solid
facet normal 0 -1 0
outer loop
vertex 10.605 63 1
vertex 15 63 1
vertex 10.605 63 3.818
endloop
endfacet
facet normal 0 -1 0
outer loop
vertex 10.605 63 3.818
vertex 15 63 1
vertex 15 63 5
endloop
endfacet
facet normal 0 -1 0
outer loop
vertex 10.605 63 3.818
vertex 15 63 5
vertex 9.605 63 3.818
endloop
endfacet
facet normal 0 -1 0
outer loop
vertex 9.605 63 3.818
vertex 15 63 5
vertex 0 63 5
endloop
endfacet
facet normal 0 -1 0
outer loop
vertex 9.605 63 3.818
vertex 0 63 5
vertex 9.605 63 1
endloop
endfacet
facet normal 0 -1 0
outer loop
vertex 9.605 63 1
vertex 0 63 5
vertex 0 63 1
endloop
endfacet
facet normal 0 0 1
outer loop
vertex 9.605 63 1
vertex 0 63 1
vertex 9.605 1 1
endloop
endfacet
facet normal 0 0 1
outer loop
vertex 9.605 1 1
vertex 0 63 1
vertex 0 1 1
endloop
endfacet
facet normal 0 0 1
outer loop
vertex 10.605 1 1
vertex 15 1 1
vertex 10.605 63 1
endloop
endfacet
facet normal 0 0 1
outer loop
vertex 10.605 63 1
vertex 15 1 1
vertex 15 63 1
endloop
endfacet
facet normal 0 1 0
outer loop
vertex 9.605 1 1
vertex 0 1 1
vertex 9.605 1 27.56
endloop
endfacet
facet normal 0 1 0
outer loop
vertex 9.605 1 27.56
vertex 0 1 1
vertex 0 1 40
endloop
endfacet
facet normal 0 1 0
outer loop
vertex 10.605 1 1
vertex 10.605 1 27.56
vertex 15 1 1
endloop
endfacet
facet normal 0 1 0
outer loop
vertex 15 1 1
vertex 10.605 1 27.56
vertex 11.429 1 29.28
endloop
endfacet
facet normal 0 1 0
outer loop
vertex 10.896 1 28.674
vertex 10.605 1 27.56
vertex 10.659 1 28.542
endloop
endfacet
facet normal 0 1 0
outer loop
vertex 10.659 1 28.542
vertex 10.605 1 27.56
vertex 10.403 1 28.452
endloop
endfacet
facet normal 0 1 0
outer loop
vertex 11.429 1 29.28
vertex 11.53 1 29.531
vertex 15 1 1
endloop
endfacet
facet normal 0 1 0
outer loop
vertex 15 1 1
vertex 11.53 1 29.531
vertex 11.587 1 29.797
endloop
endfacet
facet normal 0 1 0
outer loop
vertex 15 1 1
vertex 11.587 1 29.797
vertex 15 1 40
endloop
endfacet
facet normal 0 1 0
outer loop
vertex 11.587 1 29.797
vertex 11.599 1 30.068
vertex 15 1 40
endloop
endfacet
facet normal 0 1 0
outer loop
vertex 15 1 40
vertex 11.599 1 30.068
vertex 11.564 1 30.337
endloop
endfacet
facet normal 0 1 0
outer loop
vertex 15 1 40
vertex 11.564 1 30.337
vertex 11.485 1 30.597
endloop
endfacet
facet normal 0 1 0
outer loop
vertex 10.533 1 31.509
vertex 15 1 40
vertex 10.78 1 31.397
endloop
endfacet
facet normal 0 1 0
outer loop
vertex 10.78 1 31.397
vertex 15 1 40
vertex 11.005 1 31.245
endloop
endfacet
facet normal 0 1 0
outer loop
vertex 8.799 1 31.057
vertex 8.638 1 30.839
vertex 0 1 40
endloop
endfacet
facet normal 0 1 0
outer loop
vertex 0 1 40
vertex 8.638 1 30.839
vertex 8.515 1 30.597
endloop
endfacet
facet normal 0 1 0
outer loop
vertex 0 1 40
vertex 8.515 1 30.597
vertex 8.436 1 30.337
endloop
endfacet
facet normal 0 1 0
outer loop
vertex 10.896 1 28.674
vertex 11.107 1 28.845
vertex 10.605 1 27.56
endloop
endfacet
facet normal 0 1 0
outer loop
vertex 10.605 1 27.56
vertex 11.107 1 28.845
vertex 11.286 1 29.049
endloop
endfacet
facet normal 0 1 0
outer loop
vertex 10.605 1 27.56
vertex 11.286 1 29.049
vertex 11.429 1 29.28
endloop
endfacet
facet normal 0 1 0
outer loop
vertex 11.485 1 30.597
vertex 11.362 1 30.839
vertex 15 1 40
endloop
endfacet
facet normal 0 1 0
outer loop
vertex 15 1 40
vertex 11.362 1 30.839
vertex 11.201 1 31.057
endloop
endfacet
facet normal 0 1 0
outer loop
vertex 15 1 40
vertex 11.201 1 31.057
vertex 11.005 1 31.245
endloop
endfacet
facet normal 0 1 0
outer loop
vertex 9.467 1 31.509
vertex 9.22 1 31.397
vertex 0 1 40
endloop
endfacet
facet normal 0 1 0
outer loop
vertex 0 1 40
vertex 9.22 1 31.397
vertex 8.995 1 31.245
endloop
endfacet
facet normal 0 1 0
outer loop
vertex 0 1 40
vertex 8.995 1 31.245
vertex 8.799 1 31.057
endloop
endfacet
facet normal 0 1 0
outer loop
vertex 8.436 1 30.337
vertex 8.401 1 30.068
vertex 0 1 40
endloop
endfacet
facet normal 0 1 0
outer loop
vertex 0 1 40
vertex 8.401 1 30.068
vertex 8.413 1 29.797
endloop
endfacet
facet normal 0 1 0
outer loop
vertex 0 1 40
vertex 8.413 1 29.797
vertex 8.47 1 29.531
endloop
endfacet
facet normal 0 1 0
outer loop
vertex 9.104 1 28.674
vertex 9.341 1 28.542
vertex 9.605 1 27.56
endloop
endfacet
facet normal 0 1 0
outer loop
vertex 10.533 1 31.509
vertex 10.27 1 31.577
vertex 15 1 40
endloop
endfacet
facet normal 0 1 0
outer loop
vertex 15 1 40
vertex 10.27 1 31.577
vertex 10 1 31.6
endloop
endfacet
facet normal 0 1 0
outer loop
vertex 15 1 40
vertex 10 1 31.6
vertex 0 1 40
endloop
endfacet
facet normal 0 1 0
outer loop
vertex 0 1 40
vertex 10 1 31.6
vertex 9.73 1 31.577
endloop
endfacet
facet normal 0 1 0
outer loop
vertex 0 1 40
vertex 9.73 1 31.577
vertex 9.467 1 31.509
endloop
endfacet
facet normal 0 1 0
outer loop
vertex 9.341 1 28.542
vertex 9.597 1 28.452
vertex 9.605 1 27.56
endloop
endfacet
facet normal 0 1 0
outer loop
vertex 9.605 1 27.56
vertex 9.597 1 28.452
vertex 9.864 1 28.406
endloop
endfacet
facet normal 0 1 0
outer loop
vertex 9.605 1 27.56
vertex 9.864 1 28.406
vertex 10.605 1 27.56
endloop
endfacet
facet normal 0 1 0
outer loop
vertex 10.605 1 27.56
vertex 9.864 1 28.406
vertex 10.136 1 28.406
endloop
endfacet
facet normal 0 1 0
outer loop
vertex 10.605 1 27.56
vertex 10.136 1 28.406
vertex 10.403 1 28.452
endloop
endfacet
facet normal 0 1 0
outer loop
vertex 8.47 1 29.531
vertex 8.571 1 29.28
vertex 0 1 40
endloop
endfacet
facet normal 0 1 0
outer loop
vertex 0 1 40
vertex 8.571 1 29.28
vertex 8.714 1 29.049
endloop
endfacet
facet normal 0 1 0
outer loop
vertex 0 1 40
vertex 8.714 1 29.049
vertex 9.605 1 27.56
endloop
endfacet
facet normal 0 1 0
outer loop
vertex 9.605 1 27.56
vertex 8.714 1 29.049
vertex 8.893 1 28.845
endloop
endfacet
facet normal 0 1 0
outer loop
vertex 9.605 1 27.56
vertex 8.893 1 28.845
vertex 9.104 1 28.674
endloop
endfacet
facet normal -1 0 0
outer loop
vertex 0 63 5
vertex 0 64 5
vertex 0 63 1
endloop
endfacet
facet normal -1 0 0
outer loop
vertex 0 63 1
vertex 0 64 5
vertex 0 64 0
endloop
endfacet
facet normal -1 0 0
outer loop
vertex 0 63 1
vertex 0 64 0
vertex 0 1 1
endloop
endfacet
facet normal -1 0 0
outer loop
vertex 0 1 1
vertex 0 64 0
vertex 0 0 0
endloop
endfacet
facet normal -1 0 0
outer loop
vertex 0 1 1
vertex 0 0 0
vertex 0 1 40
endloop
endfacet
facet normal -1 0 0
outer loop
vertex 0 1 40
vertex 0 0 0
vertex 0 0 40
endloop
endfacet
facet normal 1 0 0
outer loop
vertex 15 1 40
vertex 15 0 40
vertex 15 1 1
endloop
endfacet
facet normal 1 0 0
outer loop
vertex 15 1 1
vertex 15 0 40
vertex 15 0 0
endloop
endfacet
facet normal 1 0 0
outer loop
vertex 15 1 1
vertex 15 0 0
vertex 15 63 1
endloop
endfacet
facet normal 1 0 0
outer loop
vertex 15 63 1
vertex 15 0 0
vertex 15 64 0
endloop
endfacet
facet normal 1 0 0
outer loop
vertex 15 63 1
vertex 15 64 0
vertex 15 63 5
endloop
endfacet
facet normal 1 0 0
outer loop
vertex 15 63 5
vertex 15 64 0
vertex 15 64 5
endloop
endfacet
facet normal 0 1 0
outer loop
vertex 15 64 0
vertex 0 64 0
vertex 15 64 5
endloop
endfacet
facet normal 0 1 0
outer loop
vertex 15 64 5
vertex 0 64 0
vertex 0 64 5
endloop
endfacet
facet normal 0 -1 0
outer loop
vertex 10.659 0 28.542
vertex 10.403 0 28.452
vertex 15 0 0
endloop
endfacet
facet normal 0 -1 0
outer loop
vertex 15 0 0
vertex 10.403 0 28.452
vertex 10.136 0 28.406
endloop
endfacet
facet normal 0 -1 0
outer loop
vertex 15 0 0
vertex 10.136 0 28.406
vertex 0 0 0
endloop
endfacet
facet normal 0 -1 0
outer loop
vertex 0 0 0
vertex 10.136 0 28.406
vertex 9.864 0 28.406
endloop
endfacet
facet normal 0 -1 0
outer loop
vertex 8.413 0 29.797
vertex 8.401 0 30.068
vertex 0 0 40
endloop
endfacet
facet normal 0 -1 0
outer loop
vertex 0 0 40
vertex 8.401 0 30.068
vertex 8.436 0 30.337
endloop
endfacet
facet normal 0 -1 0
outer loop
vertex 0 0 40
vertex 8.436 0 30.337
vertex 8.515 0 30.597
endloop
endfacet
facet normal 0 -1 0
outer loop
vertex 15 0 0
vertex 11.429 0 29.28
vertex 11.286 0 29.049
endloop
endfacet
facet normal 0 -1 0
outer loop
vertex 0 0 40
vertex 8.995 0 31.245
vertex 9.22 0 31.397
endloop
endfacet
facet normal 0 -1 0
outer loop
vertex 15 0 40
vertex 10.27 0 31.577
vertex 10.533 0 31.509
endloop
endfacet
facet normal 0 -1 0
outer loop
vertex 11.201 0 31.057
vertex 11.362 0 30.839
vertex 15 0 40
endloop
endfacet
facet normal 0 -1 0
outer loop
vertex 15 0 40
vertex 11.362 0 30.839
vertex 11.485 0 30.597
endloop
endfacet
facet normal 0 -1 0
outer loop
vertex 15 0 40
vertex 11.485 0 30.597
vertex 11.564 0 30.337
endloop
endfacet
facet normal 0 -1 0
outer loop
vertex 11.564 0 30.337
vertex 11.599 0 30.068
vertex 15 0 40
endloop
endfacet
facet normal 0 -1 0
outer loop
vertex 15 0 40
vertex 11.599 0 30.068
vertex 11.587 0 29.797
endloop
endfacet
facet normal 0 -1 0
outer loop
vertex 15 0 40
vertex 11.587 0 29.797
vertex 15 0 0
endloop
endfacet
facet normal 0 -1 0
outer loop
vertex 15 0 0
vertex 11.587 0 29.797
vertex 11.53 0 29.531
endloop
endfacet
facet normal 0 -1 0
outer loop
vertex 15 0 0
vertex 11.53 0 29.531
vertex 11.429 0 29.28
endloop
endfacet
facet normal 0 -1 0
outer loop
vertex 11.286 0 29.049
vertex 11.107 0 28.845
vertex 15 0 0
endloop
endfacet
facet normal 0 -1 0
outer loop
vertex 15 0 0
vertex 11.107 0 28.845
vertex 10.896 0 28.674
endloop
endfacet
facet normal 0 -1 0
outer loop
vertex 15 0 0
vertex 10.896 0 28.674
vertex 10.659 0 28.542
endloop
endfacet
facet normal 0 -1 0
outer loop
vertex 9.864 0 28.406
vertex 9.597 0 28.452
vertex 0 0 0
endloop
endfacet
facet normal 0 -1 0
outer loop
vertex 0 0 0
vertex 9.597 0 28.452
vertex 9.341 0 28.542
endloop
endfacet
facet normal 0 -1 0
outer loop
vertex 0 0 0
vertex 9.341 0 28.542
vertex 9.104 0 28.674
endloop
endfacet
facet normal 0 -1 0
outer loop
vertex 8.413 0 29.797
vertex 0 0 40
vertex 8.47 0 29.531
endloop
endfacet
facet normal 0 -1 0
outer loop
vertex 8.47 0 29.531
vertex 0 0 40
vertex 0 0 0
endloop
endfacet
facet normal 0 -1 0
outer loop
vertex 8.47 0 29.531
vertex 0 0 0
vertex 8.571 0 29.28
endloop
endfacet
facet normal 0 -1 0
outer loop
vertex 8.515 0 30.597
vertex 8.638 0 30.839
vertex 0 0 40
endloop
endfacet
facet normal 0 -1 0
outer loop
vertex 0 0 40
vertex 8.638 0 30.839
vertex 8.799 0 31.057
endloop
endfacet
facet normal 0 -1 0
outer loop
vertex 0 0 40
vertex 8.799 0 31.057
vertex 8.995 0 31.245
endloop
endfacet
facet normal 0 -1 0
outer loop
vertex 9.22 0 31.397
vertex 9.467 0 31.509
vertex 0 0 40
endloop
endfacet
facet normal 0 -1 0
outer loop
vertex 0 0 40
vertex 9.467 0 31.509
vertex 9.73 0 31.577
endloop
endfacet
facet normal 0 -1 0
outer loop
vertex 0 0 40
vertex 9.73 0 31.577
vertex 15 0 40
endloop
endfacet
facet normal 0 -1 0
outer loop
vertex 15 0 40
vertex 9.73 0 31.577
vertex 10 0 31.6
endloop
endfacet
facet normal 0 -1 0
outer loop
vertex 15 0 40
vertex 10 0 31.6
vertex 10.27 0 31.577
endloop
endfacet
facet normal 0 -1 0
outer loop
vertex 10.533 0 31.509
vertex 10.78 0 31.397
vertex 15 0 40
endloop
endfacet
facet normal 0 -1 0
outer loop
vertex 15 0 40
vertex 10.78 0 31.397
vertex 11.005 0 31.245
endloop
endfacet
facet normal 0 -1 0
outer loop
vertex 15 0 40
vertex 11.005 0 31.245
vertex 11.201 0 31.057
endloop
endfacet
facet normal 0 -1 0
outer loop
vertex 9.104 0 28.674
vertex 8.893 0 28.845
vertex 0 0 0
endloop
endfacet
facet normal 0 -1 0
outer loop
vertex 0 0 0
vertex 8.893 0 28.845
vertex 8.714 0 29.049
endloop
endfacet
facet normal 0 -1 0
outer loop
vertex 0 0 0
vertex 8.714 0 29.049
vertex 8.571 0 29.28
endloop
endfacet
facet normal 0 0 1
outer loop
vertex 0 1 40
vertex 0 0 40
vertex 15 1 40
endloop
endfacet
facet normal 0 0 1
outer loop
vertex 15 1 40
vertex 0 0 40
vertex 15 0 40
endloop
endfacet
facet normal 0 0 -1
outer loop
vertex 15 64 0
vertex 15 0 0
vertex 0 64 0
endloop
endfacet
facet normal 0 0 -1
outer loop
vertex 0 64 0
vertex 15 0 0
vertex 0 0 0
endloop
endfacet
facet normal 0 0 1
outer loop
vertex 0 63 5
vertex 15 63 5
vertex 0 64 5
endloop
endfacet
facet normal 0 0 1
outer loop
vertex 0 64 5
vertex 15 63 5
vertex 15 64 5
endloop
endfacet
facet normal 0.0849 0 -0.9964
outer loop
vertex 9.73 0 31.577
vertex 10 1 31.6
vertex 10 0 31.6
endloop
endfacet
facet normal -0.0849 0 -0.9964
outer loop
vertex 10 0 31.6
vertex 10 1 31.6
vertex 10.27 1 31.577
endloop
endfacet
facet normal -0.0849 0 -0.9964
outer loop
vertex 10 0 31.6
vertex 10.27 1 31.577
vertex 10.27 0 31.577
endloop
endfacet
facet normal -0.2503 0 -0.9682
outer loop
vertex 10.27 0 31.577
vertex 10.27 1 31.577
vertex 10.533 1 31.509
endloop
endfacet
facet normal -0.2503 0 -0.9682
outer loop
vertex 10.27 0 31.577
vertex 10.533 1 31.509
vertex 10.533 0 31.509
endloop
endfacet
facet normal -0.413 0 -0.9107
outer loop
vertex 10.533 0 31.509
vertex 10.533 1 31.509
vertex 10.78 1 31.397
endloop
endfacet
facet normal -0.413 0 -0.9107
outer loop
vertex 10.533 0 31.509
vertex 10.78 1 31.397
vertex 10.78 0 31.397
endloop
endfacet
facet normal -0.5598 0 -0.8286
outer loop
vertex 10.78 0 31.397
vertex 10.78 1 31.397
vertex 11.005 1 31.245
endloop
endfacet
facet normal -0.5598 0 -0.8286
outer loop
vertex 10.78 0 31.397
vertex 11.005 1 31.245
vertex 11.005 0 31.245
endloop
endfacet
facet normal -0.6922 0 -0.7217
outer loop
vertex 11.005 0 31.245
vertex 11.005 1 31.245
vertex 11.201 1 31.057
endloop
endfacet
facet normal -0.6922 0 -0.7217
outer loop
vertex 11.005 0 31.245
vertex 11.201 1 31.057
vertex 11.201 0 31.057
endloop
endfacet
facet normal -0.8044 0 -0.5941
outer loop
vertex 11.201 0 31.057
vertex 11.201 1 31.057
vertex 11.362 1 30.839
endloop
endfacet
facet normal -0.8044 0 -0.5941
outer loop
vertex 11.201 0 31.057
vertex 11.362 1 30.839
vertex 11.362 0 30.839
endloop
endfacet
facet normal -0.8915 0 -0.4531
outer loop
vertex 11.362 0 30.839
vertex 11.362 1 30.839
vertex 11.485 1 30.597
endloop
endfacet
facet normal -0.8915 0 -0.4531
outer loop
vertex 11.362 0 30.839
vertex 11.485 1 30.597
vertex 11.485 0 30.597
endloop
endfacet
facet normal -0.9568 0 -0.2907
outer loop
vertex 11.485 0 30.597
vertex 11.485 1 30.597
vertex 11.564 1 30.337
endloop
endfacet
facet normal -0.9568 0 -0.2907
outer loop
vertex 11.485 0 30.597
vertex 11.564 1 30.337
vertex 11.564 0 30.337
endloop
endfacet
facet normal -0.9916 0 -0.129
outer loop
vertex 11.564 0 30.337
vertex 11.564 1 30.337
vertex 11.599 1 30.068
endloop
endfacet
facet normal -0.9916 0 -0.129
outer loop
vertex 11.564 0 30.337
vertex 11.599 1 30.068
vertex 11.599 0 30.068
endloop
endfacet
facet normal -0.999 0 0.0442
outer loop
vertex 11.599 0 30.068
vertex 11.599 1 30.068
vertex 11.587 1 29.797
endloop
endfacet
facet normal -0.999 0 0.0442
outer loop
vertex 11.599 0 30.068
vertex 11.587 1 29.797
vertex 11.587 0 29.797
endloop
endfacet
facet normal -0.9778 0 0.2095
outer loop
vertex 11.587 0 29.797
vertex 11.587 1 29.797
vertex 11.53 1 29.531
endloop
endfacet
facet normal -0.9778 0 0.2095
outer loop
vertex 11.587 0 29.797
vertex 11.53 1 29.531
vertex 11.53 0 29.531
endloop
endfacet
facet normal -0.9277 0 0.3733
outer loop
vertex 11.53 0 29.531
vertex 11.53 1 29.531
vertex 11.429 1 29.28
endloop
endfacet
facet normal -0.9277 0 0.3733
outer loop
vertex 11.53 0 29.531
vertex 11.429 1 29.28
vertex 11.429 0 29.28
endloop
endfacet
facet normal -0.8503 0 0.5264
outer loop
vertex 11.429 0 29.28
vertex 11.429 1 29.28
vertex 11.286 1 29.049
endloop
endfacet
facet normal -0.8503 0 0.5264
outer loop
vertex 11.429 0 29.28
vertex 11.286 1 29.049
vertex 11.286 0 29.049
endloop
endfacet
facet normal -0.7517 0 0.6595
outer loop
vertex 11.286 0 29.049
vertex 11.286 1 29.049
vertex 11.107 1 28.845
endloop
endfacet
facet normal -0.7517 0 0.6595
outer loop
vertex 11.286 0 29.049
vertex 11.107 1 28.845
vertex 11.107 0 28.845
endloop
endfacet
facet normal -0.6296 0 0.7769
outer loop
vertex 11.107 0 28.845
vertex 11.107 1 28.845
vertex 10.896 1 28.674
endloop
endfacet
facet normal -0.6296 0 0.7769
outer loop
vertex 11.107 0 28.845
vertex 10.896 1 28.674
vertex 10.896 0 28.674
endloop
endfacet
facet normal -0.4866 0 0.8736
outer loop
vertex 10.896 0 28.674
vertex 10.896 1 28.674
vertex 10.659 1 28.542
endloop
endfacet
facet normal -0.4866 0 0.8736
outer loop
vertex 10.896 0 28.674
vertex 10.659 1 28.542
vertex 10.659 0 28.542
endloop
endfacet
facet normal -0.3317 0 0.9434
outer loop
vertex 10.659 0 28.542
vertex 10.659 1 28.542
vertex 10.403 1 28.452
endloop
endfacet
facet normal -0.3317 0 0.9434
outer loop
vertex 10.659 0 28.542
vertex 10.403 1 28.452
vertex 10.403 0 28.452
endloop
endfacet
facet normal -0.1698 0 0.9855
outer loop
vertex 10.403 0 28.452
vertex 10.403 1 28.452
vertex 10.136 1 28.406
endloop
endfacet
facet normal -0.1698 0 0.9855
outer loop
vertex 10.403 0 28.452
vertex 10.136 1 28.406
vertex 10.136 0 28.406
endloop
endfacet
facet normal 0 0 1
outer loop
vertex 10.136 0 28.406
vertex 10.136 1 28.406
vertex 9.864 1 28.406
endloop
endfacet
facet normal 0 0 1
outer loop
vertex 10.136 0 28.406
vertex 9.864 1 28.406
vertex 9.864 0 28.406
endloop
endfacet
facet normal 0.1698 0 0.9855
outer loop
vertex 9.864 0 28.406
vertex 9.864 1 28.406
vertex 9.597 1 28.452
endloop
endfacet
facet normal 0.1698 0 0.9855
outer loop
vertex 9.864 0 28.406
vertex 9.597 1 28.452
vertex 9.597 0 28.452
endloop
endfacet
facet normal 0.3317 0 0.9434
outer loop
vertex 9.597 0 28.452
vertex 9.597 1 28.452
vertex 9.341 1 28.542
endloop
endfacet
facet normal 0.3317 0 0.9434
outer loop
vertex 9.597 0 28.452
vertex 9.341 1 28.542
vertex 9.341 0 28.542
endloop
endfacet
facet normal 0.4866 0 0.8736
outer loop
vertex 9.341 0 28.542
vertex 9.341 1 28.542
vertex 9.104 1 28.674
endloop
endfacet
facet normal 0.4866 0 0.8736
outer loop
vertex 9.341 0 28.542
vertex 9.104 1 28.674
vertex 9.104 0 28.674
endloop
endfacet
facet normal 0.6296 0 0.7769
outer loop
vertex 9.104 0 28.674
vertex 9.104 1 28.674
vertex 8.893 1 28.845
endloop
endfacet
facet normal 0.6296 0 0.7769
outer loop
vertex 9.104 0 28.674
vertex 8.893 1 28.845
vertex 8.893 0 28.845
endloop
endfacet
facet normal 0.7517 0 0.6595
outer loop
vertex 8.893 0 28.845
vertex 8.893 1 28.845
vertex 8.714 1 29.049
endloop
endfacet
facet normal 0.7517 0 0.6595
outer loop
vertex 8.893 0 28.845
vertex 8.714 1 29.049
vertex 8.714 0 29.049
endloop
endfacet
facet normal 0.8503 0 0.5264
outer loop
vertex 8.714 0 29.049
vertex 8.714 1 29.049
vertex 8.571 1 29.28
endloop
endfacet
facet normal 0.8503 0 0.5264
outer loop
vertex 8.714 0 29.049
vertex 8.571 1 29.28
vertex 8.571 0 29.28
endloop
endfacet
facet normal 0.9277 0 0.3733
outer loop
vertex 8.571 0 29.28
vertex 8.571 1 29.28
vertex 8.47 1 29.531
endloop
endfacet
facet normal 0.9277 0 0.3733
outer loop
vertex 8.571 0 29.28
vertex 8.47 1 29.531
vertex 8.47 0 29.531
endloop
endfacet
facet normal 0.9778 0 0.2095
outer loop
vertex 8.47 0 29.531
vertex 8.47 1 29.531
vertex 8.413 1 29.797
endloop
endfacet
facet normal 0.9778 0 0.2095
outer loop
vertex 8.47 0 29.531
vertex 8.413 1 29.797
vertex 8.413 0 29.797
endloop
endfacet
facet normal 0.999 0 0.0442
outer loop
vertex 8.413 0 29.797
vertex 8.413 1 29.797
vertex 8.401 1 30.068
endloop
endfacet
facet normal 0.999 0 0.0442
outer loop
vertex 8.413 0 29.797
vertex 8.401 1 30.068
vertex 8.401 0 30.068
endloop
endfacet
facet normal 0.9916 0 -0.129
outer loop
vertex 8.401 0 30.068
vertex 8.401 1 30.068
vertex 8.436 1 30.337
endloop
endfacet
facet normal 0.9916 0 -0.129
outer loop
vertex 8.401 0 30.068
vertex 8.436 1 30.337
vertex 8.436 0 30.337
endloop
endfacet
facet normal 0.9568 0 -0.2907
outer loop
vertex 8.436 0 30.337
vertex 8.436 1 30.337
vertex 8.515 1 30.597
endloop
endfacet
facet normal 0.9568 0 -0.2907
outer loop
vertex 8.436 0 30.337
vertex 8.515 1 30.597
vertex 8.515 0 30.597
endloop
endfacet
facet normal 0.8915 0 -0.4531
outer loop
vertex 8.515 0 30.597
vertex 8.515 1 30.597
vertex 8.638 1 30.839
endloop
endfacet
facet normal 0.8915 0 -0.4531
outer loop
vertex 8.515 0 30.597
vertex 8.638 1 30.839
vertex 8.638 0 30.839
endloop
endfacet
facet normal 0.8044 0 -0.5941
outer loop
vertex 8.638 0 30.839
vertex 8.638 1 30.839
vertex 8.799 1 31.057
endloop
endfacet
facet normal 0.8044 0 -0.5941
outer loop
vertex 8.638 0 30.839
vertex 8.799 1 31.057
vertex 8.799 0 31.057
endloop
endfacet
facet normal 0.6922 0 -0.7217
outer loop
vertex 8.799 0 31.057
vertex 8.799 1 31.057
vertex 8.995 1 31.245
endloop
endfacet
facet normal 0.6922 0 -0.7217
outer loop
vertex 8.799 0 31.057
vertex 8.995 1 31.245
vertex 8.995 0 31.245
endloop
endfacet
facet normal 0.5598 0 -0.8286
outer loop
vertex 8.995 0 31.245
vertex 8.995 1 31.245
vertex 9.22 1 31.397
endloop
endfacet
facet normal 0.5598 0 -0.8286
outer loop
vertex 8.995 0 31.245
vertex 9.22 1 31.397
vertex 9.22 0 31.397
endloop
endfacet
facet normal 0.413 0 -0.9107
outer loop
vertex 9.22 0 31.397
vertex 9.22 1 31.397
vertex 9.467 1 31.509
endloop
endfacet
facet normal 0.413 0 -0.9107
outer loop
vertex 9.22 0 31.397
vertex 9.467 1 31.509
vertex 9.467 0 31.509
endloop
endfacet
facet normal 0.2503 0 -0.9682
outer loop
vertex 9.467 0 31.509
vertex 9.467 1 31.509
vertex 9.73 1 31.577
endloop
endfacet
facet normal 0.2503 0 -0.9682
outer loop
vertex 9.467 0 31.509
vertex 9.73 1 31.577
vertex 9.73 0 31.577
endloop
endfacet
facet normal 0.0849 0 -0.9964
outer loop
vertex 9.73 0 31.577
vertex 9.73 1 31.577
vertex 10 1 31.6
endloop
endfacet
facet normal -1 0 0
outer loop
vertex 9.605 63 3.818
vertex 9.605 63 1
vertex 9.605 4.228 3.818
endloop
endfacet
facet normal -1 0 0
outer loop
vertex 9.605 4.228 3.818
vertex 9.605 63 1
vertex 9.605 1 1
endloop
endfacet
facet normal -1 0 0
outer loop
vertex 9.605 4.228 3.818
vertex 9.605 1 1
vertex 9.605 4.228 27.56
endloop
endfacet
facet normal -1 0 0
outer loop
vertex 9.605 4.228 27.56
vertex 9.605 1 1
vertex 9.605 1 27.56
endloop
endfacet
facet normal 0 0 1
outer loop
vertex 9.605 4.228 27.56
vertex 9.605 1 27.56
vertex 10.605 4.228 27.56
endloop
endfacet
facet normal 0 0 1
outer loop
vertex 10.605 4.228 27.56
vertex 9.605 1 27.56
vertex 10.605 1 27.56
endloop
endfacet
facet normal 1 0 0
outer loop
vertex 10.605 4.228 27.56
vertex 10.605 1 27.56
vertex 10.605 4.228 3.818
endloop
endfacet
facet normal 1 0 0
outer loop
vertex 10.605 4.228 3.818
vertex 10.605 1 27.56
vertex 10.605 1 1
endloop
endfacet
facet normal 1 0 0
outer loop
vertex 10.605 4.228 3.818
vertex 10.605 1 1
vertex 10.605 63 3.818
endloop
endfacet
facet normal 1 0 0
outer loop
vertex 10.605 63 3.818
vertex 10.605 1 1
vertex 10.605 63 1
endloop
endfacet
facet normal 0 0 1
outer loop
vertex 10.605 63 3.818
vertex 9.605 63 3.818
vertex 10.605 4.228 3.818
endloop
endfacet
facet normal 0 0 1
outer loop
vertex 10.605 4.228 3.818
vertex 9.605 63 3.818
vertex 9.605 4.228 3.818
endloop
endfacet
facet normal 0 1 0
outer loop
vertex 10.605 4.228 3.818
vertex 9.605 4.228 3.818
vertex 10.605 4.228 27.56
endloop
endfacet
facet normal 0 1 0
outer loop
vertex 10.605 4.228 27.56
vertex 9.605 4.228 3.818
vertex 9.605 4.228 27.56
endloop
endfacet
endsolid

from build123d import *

# Parameters (mm, degrees)
SKETCH_1_W          = 15
SKETCH_1_H          = 64
EXTRUDE_1_DEPTH     = 40
SKETCH_2_W          = 30.056005851
SKETCH_2_H          = 62
CUT_EXTRUDE_1_DEPTH = 39
SKETCH_3_W          = 28.51308974
SKETCH_3_H          = 3.641282023
CUT_EXTRUDE_2_DEPTH = 35
SKETCH_4_R          = 1.6
CUT_EXTRUDE_3_DEPTH = 35
SKETCH_5_W          = 1
SKETCH_5_H          = 27.039604853
EXTRUDE_2_DEPTH     = 62
SKETCH_7_W          = 23.742414222
SKETCH_7_H          = 58.772442454
CUT_EXTRUDE_5_DEPTH = 62


with BuildPart() as part:
    # 草图1 → 凸台-拉伸1 (new body)
    with BuildSketch(Plane.XY):
        with Locations((7.5, 32)):
            Rectangle(SKETCH_1_W, SKETCH_1_H)
    extrude(amount=EXTRUDE_1_DEPTH)

    # 草图2 → 切除-拉伸1 (cut)
    with BuildSketch(Plane.XY.offset(40)):
        with Locations((11.079565378, 32)):
            Rectangle(SKETCH_2_W, SKETCH_2_H)
    extrude(amount=-CUT_EXTRUDE_1_DEPTH, mode=Mode.SUBTRACT)

    # 草图3 → 切除-拉伸2 (cut)
    with BuildSketch(Plane.XY.offset(40)):
        with Locations((10.369823967, 63.629780285)):
            Rectangle(SKETCH_3_W, SKETCH_3_H)
    extrude(amount=-CUT_EXTRUDE_2_DEPTH, mode=Mode.SUBTRACT)

    # 草图4 → 切除-拉伸3 (cut)
    with BuildSketch(Plane(origin=(0, 1, 0), x_dir=(1, 0, 0), z_dir=(0, 1, 0))):
        with Locations(Location((10, -30, 0), (0, 0, 270))):
            Circle(SKETCH_4_R)
    extrude(amount=-CUT_EXTRUDE_3_DEPTH, mode=Mode.SUBTRACT)

    # 草图5 → 凸台-拉伸2 (add)
    with BuildSketch(Plane(origin=(0, 1, 0), x_dir=(1, 0, 0), z_dir=(0, 1, 0))):
        with Locations((10.105118674, -14.040486519)):
            Rectangle(SKETCH_5_W, SKETCH_5_H)
    extrude(amount=EXTRUDE_2_DEPTH)

    # 草图7 → 切除-拉伸5 (cut)
    with BuildSketch(Plane(origin=(10.605118674, 0, 0), x_dir=(0, 0, -1), z_dir=(1, 0, 0))):
        with Locations((-15.689081835, 33.613778773)):
            Rectangle(SKETCH_7_W, SKETCH_7_H)
    extrude(amount=-CUT_EXTRUDE_5_DEPTH, mode=Mode.SUBTRACT)


solid = part.part
